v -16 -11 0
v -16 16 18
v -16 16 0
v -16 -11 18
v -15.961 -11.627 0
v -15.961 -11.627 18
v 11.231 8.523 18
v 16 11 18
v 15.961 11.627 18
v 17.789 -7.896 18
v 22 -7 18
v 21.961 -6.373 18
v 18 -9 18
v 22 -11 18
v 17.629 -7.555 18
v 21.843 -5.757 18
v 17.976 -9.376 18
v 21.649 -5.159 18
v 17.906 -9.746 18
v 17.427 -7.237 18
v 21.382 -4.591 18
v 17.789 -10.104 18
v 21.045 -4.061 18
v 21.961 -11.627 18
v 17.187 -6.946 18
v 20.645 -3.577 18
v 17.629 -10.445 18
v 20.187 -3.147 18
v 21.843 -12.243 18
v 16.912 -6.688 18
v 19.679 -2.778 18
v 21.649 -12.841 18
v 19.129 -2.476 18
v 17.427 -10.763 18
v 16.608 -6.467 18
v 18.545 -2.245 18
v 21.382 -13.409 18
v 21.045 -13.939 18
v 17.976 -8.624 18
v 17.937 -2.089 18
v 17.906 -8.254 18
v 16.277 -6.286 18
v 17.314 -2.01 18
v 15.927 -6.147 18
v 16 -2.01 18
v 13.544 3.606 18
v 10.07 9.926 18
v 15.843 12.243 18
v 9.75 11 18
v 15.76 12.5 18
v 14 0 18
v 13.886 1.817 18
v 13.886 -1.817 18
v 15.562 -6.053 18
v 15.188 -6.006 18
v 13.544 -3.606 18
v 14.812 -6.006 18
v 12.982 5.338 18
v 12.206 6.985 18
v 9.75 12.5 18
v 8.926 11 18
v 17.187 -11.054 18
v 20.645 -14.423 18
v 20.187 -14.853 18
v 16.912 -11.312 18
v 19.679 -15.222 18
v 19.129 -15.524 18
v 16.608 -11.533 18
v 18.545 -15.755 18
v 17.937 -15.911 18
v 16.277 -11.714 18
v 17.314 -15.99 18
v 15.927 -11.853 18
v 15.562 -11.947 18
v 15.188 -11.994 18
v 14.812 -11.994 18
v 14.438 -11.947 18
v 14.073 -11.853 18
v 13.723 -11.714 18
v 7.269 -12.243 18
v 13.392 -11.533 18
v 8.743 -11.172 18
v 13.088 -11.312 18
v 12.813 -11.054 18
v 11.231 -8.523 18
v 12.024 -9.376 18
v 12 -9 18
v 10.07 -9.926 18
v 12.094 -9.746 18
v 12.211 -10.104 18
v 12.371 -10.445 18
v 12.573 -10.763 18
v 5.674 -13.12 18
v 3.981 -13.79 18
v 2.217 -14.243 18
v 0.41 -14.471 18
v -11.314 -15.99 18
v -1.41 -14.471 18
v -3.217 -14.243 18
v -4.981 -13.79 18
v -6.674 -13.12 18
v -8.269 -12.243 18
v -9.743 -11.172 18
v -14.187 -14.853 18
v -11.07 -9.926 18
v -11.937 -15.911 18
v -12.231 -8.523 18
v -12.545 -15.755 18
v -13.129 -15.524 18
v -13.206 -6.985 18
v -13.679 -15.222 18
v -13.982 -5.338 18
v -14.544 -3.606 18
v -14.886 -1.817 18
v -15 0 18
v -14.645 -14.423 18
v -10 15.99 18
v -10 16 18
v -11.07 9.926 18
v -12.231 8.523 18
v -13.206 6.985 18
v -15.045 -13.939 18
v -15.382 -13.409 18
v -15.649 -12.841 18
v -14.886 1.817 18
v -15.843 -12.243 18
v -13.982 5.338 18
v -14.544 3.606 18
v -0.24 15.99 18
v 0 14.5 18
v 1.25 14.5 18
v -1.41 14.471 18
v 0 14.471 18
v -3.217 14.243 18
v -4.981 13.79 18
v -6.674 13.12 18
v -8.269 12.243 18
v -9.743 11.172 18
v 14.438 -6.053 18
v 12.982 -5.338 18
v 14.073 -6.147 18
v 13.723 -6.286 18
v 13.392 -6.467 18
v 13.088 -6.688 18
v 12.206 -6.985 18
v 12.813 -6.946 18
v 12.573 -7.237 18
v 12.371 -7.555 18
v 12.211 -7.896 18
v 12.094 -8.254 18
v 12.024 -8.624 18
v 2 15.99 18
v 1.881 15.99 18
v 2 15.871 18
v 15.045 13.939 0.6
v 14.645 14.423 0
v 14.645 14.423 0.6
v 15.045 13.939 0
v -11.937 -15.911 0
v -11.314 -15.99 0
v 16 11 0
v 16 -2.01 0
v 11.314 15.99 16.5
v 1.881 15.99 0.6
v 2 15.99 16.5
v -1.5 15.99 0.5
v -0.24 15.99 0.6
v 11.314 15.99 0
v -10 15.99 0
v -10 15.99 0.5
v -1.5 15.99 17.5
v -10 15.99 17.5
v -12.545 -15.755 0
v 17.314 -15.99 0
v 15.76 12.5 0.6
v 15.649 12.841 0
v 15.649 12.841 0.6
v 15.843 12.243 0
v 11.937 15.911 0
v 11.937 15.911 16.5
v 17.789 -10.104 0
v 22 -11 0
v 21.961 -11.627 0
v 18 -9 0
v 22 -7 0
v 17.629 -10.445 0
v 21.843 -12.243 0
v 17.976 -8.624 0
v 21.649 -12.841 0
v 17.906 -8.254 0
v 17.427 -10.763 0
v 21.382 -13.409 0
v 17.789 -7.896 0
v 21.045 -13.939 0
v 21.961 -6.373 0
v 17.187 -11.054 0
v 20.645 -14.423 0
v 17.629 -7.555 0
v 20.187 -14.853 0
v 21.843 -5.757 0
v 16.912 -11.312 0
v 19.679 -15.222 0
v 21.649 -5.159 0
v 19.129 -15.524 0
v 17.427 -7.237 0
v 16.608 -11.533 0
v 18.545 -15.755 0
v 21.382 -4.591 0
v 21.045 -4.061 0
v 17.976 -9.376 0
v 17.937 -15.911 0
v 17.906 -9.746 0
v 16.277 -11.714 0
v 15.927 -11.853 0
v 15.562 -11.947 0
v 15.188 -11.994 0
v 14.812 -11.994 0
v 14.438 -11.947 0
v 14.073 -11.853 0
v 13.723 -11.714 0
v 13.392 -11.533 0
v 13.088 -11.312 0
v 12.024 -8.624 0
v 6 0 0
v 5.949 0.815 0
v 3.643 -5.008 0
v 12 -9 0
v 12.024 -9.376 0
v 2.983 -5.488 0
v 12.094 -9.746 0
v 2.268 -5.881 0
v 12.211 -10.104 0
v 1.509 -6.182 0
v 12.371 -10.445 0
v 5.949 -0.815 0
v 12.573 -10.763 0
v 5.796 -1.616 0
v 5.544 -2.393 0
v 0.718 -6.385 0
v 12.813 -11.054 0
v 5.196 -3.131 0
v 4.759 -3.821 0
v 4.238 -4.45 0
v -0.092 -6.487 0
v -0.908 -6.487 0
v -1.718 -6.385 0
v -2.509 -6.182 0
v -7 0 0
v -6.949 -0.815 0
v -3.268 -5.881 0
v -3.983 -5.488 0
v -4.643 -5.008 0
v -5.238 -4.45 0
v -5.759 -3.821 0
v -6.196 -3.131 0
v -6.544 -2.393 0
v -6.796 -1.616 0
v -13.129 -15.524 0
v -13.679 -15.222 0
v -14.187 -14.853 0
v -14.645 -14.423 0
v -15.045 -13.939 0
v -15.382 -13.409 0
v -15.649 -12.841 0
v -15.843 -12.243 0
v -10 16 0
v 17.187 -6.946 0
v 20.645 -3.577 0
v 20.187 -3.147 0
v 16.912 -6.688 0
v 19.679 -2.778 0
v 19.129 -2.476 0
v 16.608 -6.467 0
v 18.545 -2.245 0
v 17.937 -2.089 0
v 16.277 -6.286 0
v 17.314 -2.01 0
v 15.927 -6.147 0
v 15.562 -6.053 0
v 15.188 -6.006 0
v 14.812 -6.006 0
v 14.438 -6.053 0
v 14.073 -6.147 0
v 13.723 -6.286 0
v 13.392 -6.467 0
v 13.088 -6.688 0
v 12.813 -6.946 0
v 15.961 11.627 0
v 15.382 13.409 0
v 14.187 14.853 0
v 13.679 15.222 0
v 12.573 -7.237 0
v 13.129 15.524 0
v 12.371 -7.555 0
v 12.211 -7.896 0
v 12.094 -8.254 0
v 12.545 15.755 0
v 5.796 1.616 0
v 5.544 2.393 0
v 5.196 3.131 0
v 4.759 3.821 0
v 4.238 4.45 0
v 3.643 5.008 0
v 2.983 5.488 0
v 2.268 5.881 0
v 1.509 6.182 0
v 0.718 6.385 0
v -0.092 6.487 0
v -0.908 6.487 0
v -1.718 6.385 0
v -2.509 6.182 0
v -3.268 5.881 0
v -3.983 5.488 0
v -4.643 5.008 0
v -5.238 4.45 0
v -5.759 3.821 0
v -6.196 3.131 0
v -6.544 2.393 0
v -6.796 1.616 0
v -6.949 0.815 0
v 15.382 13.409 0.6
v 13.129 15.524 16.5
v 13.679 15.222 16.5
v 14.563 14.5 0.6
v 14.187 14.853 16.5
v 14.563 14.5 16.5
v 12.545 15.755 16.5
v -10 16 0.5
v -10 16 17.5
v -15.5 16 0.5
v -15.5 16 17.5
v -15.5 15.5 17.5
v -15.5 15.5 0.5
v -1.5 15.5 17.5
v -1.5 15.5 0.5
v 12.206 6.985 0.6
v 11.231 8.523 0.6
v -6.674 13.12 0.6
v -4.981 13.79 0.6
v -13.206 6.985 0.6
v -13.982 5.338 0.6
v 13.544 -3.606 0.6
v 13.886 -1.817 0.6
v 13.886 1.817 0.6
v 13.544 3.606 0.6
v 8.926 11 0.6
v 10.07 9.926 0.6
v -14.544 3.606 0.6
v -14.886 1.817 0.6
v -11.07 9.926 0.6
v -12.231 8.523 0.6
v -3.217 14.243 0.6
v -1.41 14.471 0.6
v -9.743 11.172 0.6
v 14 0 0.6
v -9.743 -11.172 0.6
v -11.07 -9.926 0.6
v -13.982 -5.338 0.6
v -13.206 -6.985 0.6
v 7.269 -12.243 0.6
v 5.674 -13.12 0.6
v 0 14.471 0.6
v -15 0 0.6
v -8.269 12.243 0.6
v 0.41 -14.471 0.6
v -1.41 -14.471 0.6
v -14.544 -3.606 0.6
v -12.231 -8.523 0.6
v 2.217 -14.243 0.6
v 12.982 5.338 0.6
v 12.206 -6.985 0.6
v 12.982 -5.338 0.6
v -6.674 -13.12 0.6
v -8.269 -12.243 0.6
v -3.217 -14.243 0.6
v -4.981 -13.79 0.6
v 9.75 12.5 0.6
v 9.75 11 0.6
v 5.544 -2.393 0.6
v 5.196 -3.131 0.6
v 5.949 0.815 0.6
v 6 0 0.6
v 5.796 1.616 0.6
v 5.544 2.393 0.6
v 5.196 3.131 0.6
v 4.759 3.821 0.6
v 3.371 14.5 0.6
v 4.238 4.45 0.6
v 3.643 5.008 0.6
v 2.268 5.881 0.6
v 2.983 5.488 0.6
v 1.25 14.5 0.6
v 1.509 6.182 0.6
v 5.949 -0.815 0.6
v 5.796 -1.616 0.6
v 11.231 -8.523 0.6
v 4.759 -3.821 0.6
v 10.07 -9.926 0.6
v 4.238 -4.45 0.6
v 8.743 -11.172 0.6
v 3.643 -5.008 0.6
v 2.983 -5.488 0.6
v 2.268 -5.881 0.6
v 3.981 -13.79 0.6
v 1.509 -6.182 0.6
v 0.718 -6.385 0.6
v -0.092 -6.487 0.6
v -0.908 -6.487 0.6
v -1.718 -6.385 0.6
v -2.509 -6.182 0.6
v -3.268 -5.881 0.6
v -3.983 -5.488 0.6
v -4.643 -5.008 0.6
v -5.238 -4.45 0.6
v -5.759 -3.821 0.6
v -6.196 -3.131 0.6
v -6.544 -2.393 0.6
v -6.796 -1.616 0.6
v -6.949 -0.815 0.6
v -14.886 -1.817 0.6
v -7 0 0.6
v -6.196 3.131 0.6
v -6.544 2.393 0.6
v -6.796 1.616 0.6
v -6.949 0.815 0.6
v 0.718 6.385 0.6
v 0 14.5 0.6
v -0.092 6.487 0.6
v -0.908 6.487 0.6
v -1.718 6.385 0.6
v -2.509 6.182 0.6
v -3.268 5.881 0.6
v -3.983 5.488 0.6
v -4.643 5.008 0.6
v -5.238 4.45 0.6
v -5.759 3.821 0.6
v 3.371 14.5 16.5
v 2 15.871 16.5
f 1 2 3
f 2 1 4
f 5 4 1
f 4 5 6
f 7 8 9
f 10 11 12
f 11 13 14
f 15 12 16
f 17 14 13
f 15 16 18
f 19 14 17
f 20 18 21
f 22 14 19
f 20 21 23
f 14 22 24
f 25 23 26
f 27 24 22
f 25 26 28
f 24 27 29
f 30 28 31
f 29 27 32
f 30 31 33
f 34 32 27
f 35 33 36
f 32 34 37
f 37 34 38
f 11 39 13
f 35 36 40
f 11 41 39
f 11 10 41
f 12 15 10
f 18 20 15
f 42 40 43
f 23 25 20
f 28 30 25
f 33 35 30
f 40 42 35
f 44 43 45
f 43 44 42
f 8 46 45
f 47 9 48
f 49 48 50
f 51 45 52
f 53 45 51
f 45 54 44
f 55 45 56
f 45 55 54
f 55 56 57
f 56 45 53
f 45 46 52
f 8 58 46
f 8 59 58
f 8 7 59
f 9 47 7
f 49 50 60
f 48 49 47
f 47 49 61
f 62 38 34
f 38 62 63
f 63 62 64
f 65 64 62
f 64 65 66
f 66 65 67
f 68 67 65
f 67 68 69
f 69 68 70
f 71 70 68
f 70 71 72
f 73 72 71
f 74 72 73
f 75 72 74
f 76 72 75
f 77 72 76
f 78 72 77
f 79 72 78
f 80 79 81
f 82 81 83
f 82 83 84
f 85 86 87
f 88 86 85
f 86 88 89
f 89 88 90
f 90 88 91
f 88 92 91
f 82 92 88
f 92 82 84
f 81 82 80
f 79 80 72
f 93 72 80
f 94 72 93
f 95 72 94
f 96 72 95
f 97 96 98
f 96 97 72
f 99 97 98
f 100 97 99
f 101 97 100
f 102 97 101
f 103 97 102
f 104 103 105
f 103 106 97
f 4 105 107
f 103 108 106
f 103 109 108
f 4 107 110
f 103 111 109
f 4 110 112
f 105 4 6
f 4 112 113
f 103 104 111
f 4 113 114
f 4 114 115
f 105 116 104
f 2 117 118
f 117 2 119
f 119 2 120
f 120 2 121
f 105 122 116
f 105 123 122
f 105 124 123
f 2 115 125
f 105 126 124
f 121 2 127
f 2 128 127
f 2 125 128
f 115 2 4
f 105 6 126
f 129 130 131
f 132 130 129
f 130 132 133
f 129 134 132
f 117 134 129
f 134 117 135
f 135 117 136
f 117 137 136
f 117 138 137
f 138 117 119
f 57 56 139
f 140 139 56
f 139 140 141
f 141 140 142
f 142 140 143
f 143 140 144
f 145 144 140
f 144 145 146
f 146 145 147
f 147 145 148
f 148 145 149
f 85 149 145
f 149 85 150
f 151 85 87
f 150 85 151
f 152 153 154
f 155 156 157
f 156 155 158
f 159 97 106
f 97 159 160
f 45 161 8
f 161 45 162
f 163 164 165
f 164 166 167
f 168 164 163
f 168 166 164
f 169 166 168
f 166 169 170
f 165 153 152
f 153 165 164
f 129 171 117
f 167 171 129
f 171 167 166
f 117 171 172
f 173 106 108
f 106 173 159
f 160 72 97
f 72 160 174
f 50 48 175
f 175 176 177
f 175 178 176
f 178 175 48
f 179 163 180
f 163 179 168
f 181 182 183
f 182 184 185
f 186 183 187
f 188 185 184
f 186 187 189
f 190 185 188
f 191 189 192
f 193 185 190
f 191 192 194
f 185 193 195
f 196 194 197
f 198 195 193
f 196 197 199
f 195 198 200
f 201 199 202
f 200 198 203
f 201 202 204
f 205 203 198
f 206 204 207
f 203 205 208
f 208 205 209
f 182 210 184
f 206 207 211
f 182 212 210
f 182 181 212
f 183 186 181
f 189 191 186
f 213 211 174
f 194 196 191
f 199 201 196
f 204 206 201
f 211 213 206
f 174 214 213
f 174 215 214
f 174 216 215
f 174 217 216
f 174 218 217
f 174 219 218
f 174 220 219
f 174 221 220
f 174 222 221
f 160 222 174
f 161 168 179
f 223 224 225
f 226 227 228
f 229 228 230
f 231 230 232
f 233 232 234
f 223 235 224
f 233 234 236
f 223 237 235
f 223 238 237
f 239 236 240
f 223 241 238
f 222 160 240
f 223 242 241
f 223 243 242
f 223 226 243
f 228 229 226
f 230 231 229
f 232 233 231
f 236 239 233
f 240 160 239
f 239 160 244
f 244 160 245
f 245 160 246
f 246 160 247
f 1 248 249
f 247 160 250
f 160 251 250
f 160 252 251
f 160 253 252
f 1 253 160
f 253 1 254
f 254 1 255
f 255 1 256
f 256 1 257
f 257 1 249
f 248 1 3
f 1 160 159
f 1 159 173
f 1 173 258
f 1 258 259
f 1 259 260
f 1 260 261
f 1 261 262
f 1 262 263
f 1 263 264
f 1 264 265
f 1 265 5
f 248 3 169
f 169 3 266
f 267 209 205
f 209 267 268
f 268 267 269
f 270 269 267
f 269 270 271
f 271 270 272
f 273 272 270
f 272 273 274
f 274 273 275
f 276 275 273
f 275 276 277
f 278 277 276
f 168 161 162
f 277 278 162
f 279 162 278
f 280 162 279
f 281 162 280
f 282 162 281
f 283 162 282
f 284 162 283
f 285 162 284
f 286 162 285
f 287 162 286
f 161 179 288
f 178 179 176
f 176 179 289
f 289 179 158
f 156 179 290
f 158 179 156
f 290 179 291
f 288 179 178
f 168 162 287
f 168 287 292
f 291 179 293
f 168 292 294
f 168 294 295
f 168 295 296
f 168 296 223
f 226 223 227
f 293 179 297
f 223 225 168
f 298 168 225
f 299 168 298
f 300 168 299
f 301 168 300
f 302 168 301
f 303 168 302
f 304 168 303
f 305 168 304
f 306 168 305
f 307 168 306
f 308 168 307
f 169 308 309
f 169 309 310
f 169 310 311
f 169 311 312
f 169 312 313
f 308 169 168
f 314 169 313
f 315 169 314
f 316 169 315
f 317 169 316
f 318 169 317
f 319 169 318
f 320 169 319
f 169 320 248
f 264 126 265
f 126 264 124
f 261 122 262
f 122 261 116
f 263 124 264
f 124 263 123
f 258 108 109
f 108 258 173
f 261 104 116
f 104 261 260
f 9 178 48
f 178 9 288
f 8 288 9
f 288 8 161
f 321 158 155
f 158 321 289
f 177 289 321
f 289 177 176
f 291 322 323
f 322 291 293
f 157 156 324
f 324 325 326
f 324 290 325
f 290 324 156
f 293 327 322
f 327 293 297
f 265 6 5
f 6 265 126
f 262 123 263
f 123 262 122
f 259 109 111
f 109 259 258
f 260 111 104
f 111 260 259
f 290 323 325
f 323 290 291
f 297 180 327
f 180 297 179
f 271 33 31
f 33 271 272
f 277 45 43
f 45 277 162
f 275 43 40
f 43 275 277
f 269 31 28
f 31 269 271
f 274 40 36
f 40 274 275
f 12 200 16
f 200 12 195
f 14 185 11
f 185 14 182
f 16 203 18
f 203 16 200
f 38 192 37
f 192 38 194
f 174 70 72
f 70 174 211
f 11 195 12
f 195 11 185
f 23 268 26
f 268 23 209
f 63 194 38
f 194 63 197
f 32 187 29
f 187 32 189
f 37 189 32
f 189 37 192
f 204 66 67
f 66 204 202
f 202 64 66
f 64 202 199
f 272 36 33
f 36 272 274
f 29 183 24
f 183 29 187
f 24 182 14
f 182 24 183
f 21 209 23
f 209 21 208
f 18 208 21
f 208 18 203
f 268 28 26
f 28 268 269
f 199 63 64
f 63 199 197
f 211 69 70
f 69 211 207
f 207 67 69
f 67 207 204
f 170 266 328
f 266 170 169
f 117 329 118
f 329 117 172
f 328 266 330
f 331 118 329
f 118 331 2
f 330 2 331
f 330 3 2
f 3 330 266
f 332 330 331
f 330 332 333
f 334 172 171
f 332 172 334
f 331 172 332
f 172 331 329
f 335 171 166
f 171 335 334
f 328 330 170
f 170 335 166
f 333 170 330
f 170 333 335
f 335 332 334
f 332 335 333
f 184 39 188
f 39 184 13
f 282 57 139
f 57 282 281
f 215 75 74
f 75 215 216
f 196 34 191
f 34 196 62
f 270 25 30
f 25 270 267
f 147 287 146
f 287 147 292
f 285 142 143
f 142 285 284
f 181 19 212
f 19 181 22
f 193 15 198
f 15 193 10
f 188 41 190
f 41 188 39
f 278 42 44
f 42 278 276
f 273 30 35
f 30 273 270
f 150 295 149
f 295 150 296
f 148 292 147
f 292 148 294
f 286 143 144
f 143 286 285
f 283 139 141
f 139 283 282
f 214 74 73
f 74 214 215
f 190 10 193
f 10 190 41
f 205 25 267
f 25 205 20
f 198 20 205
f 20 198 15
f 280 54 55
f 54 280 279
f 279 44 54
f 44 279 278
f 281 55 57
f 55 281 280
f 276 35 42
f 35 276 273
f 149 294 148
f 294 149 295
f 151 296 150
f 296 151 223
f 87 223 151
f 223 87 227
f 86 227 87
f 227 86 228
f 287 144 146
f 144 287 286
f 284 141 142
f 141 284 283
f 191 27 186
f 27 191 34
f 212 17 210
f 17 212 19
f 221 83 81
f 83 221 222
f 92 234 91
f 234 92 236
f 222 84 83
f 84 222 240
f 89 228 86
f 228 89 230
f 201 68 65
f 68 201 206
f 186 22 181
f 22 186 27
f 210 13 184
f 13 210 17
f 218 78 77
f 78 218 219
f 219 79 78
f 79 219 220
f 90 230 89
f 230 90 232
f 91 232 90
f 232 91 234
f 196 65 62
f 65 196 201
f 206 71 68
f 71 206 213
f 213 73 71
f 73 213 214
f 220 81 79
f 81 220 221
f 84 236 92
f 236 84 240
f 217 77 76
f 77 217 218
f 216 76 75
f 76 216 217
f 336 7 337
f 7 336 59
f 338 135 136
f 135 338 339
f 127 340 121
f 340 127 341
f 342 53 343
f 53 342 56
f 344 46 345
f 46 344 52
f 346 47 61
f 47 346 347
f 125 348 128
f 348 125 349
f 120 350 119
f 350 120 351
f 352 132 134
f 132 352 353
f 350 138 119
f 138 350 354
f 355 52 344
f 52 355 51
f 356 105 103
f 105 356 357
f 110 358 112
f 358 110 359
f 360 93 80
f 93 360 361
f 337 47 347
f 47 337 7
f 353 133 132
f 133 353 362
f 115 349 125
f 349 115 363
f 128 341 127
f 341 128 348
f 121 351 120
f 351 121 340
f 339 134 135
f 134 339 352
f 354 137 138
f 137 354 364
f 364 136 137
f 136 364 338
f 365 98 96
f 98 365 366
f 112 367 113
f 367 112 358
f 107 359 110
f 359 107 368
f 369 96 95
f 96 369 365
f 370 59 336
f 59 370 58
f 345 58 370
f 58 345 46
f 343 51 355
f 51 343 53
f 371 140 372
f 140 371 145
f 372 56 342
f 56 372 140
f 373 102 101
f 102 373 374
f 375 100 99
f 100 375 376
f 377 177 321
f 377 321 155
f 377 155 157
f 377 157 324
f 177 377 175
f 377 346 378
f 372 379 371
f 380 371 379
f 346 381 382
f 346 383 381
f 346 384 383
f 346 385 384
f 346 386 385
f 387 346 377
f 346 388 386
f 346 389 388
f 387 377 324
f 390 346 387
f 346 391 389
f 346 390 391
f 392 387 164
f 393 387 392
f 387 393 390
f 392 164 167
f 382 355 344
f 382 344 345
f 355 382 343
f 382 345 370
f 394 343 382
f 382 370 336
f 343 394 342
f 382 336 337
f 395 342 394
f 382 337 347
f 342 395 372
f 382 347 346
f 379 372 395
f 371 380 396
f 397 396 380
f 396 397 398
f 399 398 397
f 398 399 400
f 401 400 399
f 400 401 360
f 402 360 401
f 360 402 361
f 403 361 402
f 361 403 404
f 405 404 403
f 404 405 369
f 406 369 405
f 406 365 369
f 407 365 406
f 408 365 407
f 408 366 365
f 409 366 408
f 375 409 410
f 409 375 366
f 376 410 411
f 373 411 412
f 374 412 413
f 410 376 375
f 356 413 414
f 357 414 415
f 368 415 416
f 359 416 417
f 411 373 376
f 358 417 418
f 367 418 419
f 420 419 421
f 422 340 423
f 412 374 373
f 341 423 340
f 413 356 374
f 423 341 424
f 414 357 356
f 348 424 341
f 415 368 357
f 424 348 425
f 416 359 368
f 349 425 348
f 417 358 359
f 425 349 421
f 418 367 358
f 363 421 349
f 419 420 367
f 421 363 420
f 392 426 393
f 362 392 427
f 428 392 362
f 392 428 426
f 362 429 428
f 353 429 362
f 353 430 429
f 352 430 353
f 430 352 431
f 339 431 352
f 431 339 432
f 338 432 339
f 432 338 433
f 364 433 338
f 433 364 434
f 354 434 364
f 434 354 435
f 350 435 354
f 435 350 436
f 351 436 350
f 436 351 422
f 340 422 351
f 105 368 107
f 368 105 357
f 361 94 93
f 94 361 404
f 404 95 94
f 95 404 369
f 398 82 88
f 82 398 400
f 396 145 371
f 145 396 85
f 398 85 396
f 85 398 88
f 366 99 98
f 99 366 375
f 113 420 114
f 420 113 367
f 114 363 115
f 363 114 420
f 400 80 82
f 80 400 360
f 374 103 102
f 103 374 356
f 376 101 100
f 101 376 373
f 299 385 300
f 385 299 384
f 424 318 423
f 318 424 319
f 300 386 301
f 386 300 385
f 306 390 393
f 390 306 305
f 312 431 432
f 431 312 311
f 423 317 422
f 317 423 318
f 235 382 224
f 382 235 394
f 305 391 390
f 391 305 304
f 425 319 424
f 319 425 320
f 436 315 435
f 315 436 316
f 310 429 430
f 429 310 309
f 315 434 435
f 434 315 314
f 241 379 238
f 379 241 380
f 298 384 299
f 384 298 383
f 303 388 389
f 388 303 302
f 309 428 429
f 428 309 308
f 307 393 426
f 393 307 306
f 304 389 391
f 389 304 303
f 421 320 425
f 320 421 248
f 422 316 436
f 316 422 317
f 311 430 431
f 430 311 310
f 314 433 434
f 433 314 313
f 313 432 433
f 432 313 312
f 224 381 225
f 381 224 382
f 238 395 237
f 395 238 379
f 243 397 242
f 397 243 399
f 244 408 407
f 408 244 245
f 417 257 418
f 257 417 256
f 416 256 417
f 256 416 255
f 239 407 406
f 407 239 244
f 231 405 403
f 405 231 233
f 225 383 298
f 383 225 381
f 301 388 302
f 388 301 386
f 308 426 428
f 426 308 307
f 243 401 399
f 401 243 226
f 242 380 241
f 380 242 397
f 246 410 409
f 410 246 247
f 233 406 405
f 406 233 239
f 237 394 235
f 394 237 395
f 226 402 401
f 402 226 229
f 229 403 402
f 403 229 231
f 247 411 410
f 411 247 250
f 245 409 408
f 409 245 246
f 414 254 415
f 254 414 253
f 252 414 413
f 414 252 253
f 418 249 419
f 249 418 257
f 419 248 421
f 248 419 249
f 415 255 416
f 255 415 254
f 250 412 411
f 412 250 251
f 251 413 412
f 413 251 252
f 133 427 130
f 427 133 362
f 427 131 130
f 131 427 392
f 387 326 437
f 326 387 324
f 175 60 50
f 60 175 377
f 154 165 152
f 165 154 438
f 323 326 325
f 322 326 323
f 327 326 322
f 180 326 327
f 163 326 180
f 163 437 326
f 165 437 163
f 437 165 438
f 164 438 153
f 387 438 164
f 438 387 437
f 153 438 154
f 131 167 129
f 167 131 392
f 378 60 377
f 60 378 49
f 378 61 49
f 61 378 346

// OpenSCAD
$fn = 50;


difference() {
	union() {
		hull() {
			translate(v = [-11.0000000000, 11.0000000000, 0]) {
				cylinder(h = 18, r = 5);
			}
			translate(v = [11.0000000000, 11.0000000000, 0]) {
				cylinder(h = 18, r = 5);
			}
			translate(v = [-11.0000000000, -11.0000000000, 0]) {
				cylinder(h = 18, r = 5);
			}
			translate(v = [11.0000000000, -11.0000000000, 0]) {
				cylinder(h = 18, r = 5);
			}
		}
		translate(v = [7.5000000000, -9.0000000000, 0]) {
			hull() {
				translate(v = [-9.5000000000, 2.0000000000, 0]) {
					cylinder(h = 18, r = 5);
				}
				translate(v = [9.5000000000, 2.0000000000, 0]) {
					cylinder(h = 18, r = 5);
				}
				translate(v = [-9.5000000000, -2.0000000000, 0]) {
					cylinder(h = 18, r = 5);
				}
				translate(v = [9.5000000000, -2.0000000000, 0]) {
					cylinder(h = 18, r = 5);
				}
			}
		}
		translate(v = [-16.0000000000, 10.0000000000, 0]) {
			cube(size = [6, 6, 18]);
		}
	}
	union() {
		translate(v = [-15.5000000000, 15.5000000000, 0.5000000000]) {
			cube(size = [14, 0.5000000000, 17.0000000000]);
		}
		translate(v = [15.0000000000, -9.0000000000, -50.0000000000]) {
			cylinder(h = 100, r = 3.0000000000);
		}
		translate(v = [-0.5000000000, 0.0000000000, 0.6000000000]) {
			cylinder(h = 20.4000000000, r = 14.5000000000);
		}
		translate(v = [-0.5000000000, 0.0000000000, -9.0000000000]) {
			cylinder(h = 18, r = 6.5000000000);
		}
		translate(v = [0.0000000000, 12.5000000000, 0.6000000000]) {
			cube(size = [16.0000000000, 2, 20.4000000000]);
		}
		translate(v = [2.0000000000, 12.5000000000, 16.5000000000]) {
			cube(size = [14.0000000000, 5, 1.5000000000]);
		}
		translate(v = [-3.0000000000, 18.7500000000, 0.6000000000]) {
			rotate(a = [0, 0, -45]) {
				cube(size = [10, 1.5000000000, 20.4000000000]);
			}
		}
		translate(v = [2.2500000000, 11.0000000000, 0.6000000000]) {
			cube(size = [7.5000000000, 2, 17.4000000000]);
		}
	}
}
